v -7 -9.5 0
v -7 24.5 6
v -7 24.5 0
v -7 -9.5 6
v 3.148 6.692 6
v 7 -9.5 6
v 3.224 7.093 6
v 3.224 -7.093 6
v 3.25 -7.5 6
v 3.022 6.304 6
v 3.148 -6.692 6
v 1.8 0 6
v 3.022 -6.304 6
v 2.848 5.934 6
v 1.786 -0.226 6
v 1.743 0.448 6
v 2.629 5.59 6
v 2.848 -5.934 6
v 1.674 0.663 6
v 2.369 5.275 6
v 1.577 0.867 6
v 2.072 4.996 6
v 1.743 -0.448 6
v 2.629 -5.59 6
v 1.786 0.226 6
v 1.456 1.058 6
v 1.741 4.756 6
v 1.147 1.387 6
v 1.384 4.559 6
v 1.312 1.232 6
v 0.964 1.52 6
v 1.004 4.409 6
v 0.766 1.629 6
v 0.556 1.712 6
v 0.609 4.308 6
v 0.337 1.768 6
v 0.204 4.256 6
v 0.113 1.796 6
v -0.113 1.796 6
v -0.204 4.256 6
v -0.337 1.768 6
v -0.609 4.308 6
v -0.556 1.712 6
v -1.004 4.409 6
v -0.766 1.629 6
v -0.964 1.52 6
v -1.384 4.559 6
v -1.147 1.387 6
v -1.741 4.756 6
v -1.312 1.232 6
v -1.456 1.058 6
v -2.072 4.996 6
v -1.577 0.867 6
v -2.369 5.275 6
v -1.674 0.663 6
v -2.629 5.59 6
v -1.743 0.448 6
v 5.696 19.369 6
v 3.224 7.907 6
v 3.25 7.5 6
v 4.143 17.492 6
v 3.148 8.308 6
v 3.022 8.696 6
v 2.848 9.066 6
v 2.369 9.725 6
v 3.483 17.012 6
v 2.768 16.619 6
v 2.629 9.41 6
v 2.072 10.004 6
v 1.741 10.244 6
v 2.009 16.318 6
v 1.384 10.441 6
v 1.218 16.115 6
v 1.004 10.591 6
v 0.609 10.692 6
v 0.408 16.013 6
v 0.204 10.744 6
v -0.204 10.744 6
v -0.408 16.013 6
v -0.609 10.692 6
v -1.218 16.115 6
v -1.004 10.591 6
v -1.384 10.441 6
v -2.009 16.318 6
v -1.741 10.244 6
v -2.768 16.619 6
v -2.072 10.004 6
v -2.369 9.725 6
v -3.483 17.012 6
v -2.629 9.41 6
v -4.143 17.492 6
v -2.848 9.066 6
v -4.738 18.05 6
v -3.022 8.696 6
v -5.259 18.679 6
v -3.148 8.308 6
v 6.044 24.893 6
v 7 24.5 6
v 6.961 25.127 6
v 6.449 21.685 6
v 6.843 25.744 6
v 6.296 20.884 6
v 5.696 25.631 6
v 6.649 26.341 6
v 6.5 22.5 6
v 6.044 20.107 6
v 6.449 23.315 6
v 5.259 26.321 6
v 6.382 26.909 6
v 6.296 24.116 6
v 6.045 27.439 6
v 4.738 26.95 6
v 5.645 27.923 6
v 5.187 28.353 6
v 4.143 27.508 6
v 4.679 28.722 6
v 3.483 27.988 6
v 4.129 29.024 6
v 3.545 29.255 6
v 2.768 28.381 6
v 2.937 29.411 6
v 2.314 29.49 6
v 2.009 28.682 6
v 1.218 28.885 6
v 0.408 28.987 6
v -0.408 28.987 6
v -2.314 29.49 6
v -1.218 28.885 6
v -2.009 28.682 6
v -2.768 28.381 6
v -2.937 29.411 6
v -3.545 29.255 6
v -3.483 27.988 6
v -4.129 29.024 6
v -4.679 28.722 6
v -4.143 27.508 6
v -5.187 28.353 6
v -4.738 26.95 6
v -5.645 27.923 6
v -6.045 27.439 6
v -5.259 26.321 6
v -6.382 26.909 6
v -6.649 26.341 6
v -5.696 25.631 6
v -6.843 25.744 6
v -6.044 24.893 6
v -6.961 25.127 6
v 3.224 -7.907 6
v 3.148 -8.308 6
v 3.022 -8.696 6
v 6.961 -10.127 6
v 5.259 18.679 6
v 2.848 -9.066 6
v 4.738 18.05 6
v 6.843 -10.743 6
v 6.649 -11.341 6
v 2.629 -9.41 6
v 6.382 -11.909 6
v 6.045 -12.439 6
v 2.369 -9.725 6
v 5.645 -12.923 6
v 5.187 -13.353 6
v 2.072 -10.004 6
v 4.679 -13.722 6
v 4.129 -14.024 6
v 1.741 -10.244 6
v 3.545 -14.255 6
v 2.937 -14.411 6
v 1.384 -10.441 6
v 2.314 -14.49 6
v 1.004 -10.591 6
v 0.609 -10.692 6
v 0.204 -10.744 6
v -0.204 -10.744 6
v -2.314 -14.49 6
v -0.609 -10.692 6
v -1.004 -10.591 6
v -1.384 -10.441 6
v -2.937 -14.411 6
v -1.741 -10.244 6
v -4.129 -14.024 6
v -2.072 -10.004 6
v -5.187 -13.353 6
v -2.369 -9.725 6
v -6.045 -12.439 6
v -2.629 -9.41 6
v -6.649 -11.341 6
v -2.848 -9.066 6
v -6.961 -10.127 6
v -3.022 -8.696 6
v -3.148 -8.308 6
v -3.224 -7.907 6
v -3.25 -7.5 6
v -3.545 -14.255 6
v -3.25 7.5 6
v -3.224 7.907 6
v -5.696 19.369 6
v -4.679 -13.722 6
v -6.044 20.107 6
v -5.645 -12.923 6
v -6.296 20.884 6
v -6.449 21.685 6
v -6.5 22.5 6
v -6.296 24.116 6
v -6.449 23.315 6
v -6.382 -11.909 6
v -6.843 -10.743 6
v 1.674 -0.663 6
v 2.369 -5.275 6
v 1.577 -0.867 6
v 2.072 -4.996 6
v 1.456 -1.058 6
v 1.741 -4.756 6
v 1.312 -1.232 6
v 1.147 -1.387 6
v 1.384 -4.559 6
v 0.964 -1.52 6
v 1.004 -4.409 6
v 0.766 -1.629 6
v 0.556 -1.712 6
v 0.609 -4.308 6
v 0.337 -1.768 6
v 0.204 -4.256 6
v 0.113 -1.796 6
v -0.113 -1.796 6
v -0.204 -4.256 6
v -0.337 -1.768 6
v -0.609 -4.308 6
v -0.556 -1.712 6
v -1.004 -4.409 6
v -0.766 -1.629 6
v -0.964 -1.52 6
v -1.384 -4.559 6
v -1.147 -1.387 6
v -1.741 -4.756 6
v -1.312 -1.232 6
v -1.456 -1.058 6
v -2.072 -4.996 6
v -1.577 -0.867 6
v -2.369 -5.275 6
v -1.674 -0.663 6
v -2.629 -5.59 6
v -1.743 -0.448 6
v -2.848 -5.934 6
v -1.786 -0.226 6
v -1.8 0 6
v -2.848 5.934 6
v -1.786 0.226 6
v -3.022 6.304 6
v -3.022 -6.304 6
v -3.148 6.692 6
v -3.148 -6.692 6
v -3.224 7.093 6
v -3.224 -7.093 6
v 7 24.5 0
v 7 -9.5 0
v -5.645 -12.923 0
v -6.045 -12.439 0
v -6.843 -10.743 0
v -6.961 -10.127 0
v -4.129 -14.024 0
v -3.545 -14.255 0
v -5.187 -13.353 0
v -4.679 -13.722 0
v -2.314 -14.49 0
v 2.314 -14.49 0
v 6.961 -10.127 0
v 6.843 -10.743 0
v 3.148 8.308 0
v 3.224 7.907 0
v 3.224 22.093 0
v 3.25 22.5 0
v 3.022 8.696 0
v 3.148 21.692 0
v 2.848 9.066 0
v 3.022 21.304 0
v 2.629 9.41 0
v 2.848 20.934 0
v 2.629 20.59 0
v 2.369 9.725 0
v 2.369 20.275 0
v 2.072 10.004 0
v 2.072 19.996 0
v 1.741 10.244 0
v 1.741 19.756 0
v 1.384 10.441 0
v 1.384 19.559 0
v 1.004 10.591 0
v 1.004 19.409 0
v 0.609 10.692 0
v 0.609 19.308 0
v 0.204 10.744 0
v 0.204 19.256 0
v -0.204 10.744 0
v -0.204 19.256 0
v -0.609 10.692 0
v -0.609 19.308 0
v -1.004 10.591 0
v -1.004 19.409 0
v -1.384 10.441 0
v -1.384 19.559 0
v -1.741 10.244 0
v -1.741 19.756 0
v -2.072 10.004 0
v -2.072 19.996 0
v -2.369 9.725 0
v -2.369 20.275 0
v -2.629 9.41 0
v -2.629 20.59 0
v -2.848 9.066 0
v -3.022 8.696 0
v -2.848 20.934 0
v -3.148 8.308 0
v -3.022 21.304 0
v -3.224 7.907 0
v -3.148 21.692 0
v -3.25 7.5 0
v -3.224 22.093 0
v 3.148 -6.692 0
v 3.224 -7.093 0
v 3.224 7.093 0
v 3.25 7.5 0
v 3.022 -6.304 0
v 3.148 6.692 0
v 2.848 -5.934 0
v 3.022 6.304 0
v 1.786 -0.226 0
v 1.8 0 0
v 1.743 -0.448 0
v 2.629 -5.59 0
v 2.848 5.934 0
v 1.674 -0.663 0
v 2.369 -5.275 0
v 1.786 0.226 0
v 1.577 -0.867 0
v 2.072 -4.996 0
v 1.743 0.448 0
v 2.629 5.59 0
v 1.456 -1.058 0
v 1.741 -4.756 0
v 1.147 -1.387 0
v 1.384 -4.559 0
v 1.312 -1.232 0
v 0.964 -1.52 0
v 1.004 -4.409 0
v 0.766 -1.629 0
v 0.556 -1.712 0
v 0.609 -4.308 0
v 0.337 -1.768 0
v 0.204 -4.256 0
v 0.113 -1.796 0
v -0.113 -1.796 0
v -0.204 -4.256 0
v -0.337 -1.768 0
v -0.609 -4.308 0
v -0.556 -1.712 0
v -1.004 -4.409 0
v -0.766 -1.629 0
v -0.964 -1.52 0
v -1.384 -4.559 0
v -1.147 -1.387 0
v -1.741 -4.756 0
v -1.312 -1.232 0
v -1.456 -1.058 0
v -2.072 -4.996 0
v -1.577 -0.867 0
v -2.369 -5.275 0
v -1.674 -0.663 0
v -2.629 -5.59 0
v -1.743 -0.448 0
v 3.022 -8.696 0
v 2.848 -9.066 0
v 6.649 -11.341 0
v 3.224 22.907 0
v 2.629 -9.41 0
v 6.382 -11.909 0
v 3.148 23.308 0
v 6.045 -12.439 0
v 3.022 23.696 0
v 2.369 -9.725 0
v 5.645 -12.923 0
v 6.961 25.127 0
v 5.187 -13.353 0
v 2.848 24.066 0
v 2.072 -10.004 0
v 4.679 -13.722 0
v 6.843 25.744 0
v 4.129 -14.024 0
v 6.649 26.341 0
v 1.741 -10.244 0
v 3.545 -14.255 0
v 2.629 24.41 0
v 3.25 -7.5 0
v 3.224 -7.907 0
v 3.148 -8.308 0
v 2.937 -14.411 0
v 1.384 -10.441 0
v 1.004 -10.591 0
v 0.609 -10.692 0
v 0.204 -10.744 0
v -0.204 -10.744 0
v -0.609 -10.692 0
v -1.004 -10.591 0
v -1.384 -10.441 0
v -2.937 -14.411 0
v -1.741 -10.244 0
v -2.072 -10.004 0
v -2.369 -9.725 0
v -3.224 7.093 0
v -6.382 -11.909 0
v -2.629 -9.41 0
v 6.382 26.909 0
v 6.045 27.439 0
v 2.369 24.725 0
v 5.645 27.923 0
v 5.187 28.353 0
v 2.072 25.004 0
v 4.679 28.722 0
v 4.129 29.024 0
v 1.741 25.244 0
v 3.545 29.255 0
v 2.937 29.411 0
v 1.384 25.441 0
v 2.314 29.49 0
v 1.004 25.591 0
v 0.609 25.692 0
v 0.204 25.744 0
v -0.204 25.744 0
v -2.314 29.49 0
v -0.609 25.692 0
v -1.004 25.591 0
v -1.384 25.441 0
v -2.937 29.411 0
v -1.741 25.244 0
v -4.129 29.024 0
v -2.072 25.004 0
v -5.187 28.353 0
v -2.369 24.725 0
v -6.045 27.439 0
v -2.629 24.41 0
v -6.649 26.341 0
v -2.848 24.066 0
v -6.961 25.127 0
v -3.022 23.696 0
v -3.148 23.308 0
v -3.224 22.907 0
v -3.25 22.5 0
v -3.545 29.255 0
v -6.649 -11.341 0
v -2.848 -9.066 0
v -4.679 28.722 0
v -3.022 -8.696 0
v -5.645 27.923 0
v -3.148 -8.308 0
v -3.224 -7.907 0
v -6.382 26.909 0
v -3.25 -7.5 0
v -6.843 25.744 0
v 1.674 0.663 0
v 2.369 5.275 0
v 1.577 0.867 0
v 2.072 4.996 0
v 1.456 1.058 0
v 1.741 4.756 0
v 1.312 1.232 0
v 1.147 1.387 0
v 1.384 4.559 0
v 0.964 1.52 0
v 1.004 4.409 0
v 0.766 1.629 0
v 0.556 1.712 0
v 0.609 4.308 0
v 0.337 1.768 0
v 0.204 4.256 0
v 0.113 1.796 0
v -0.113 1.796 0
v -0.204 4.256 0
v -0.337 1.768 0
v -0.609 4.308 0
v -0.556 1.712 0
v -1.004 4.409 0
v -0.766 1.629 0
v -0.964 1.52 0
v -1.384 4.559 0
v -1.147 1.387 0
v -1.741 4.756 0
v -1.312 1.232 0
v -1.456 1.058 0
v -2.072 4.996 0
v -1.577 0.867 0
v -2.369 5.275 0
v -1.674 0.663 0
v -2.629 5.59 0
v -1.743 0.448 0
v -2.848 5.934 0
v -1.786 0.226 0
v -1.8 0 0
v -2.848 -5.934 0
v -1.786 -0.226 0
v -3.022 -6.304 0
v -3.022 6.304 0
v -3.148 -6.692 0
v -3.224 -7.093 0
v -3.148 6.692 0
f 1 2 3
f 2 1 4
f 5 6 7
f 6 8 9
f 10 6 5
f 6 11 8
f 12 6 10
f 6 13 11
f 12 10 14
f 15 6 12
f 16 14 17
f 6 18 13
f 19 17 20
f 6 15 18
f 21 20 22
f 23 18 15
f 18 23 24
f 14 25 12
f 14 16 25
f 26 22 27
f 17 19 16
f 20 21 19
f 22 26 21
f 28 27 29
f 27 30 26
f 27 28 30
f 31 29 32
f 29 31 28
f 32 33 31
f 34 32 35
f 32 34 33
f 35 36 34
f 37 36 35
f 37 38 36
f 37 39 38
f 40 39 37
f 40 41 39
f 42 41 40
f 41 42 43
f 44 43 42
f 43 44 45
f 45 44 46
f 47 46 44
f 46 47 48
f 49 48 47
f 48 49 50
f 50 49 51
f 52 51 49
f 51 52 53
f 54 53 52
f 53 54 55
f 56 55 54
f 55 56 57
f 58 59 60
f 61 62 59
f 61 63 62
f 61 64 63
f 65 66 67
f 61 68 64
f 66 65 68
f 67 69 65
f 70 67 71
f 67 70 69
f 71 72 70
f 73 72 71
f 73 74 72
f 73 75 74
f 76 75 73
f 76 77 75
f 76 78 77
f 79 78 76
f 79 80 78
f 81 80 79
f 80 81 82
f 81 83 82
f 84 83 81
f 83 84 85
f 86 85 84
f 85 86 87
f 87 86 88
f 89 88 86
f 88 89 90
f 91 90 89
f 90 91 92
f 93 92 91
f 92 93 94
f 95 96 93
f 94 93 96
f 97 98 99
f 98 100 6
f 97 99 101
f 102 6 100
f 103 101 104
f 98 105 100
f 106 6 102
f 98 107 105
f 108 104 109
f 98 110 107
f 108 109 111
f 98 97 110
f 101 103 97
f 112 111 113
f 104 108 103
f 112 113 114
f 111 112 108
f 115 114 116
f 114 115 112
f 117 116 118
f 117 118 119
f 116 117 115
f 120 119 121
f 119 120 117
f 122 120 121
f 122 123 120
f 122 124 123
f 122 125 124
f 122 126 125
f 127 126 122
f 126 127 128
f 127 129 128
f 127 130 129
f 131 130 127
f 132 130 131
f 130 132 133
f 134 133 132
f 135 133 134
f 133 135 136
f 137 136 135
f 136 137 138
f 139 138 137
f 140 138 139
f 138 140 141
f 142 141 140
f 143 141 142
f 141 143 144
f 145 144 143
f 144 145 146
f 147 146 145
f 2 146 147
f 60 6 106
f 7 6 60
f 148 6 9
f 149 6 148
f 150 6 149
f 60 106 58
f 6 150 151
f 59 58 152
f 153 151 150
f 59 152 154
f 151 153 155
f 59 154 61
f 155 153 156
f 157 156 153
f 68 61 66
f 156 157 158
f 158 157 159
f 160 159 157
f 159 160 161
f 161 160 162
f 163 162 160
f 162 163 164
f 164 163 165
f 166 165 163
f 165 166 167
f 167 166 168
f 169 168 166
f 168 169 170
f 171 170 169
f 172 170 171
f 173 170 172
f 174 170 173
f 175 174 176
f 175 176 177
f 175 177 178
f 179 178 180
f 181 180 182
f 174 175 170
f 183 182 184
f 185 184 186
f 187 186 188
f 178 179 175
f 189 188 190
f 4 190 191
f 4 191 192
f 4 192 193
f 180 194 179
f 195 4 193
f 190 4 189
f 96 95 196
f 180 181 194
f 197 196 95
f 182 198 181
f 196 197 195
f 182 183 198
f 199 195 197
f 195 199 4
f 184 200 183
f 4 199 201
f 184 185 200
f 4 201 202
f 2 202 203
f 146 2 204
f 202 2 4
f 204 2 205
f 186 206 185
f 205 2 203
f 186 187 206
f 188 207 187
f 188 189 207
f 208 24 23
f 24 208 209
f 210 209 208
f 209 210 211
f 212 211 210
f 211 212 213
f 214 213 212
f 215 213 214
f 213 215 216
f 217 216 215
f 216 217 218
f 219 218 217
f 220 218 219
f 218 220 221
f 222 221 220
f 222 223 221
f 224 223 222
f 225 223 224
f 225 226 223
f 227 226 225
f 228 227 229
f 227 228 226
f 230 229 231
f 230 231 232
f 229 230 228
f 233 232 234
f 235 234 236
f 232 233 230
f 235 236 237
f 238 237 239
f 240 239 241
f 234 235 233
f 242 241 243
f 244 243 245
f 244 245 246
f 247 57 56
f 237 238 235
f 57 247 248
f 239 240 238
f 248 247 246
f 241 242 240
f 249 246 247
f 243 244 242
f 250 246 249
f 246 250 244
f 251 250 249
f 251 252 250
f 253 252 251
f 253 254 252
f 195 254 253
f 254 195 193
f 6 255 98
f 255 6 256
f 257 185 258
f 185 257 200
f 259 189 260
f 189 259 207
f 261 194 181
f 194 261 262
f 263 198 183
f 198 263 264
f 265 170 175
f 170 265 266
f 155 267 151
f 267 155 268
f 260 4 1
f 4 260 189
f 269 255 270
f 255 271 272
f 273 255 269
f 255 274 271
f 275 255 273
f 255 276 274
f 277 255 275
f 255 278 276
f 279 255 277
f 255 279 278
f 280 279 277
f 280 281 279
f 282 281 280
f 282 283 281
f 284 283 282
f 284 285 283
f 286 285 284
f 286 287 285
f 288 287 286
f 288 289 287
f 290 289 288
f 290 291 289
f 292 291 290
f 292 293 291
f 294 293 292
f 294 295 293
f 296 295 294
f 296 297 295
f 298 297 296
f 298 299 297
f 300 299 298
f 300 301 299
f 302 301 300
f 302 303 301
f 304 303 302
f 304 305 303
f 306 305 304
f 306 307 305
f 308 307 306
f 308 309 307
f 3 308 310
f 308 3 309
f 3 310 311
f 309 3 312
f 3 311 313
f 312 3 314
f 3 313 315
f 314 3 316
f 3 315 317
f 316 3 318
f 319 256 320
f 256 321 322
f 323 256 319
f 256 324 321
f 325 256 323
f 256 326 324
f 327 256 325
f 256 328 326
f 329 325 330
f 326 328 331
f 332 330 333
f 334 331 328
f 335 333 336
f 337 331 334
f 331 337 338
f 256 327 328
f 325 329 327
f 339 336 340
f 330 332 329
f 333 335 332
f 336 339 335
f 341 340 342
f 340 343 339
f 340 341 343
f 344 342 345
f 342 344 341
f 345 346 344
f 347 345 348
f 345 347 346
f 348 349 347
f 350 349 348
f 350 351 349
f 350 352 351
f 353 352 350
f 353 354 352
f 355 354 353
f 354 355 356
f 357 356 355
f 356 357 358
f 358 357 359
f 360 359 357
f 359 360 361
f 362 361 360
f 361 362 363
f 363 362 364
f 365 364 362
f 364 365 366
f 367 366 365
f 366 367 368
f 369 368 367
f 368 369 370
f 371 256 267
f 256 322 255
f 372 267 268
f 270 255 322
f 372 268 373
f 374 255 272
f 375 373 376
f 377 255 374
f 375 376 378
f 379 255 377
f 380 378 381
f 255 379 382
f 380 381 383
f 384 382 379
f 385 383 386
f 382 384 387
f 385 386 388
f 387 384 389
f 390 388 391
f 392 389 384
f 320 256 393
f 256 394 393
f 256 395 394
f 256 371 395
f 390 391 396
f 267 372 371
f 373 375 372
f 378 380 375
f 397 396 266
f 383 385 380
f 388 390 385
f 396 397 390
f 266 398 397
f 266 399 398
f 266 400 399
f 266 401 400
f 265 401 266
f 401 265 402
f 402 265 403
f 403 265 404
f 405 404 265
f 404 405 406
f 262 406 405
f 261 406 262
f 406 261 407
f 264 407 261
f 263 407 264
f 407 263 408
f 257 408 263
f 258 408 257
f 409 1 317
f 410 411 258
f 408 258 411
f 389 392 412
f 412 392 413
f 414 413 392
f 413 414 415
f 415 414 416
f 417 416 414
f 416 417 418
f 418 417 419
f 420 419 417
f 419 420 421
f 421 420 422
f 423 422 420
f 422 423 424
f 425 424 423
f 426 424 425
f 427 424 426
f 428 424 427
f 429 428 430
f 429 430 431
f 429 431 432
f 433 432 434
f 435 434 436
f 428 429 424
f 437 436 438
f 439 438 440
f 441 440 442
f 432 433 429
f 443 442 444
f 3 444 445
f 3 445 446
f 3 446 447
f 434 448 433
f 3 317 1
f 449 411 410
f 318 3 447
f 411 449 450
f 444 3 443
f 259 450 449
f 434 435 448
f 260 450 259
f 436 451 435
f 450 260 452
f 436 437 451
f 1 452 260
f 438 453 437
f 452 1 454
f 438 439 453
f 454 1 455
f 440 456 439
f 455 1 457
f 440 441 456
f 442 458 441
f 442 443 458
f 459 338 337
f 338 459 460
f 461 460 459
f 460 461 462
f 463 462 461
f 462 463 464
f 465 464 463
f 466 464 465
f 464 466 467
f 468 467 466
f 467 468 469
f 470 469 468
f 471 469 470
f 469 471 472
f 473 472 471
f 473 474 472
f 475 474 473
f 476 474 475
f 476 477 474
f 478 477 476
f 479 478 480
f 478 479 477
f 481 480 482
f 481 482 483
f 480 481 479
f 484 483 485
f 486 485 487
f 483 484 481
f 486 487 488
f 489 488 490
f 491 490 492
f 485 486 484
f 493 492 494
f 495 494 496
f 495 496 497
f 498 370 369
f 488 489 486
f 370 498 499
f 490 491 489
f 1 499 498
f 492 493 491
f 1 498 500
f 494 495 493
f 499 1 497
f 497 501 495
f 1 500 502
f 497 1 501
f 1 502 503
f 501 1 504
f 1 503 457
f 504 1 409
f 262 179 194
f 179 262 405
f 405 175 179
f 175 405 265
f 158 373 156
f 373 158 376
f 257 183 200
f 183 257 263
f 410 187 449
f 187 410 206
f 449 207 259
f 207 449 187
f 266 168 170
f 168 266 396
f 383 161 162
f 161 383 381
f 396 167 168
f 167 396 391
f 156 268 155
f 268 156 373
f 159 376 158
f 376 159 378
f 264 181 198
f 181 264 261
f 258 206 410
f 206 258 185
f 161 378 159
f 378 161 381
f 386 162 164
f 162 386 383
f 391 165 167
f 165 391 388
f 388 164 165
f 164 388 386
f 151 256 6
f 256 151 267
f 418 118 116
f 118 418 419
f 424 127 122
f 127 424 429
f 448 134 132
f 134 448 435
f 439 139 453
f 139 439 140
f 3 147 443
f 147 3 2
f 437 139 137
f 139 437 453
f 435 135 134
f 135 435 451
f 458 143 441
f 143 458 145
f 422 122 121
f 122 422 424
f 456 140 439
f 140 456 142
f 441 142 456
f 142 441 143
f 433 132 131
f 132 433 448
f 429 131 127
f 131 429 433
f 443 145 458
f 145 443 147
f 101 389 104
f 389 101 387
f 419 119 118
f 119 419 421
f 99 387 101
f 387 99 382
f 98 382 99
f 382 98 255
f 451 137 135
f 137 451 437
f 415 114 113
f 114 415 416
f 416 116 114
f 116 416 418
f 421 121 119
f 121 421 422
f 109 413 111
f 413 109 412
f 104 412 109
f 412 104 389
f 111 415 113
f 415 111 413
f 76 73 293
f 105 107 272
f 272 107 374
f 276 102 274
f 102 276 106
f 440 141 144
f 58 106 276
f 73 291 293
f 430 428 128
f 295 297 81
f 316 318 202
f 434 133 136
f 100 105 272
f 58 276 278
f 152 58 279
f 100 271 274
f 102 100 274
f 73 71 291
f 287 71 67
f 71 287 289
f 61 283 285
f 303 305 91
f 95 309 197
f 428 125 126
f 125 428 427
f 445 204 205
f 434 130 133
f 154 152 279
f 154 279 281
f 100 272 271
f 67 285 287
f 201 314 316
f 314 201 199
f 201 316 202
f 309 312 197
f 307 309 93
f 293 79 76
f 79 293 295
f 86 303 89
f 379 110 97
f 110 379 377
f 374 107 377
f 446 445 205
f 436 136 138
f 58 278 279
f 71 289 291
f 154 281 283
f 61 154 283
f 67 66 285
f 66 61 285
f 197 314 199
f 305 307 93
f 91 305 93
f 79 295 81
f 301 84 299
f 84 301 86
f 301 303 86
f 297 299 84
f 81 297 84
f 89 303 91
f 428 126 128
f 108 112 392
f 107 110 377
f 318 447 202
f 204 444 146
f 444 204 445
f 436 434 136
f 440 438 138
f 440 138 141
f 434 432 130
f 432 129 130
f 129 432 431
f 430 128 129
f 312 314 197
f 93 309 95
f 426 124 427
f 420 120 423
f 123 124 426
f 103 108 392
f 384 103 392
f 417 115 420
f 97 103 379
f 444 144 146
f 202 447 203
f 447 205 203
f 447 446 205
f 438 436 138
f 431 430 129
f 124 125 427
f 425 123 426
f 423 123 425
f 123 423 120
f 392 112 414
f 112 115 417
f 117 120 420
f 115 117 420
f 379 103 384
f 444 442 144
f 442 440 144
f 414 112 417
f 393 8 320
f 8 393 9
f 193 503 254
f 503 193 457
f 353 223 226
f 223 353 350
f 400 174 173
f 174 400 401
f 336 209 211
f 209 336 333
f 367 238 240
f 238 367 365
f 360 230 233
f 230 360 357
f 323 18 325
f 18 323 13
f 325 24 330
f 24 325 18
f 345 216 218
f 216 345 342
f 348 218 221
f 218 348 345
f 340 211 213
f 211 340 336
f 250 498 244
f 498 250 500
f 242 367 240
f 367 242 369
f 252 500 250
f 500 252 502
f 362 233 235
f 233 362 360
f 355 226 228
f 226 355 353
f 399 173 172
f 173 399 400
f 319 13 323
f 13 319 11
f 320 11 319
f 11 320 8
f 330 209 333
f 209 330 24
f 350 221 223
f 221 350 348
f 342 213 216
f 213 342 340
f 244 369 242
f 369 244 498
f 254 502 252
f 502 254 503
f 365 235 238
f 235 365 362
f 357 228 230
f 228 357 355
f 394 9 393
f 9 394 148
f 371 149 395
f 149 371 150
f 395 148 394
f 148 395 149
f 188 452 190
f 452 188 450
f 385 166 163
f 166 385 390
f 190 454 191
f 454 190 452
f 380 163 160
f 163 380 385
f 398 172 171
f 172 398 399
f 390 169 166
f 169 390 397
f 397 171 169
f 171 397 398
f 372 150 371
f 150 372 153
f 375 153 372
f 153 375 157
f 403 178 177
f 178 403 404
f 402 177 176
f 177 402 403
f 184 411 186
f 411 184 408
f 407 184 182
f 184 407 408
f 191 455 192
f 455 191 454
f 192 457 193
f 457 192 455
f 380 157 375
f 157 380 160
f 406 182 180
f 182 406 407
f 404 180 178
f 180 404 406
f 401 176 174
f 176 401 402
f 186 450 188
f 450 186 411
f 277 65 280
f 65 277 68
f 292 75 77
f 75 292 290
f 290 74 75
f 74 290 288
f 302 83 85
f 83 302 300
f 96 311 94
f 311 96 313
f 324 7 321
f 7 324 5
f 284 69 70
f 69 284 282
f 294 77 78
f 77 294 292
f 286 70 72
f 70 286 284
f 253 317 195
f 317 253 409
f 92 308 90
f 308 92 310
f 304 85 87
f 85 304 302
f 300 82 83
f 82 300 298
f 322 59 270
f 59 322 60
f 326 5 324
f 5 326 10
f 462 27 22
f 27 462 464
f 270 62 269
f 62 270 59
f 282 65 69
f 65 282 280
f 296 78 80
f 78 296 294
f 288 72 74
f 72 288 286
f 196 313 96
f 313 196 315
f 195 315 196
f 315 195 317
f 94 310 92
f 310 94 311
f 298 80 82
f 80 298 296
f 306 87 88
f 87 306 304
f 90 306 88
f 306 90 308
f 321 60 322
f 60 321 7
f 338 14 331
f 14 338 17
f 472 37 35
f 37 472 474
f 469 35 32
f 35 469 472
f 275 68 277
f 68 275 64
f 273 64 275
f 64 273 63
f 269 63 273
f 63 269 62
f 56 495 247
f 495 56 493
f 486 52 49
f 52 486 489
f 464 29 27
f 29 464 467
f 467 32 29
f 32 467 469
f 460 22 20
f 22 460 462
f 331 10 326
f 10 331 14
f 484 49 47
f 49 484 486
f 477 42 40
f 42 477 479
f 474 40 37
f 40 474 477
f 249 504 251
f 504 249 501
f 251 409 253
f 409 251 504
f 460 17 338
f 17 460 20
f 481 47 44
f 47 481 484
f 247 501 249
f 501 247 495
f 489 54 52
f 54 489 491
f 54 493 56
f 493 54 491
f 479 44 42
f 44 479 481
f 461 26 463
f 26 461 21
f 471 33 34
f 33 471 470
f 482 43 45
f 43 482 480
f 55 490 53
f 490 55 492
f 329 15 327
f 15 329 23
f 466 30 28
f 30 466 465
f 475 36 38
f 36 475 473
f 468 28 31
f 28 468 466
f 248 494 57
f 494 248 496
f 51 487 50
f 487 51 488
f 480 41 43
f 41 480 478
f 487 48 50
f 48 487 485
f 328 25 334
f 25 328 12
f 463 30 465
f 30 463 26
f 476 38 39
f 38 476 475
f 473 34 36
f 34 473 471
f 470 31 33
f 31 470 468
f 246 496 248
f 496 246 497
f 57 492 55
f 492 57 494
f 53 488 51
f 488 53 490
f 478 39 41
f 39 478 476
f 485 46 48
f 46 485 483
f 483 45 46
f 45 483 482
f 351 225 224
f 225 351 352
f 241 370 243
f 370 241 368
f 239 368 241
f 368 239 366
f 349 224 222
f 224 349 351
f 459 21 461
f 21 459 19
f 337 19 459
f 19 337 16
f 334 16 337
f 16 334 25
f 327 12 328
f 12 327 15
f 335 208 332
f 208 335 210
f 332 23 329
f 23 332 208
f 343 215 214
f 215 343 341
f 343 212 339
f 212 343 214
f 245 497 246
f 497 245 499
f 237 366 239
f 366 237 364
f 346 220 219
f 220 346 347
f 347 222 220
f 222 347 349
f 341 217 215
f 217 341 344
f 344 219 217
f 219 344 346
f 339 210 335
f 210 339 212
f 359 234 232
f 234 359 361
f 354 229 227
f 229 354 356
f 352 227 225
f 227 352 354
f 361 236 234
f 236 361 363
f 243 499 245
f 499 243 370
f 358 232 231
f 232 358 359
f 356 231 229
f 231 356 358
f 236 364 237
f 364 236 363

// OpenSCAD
$fn = 50;


difference() {
	union() {
		hull() {
			translate(v = [-2.0000000000, 9.5000000000, 0]) {
				cylinder(h = 6, r = 5);
			}
			translate(v = [2.0000000000, 9.5000000000, 0]) {
				cylinder(h = 6, r = 5);
			}
			translate(v = [-2.0000000000, -9.5000000000, 0]) {
				cylinder(h = 6, r = 5);
			}
			translate(v = [2.0000000000, -9.5000000000, 0]) {
				cylinder(h = 6, r = 5);
			}
		}
		translate(v = [0.0000000000, 15.0000000000, 0]) {
			hull() {
				translate(v = [-2.0000000000, 9.5000000000, 0]) {
					cylinder(h = 6, r = 5);
				}
				translate(v = [2.0000000000, 9.5000000000, 0]) {
					cylinder(h = 6, r = 5);
				}
				translate(v = [-2.0000000000, -9.5000000000, 0]) {
					cylinder(h = 6, r = 5);
				}
				translate(v = [2.0000000000, -9.5000000000, 0]) {
					cylinder(h = 6, r = 5);
				}
			}
		}
		translate(v = [0.0000000000, 15.0000000000, 0]) {
			hull() {
				translate(v = [-2.0000000000, 9.5000000000, 0]) {
					cylinder(h = 6, r = 5);
				}
				translate(v = [2.0000000000, 9.5000000000, 0]) {
					cylinder(h = 6, r = 5);
				}
				translate(v = [-2.0000000000, -9.5000000000, 0]) {
					cylinder(h = 6, r = 5);
				}
				translate(v = [2.0000000000, -9.5000000000, 0]) {
					cylinder(h = 6, r = 5);
				}
			}
		}
	}
	union() {
		translate(v = [0.0000000000, 22.5000000000, 6]) {
			rotate(a = [0, 0, 0]) {
				difference() {
					union() {
						#translate(v = [0, 0, -6.0000000000]) {
							cylinder(h = 6, r = 2.2500000000);
						}
						#translate(v = [0, 0, -6]) {
							cylinder(h = 6, r1 = 3.2500000000, r2 = 6.5000000000);
						}
						#translate(v = [0, 0, -6.0000000000]) {
							cylinder(h = 6, r = 3.2500000000);
						}
						#translate(v = [0, 0, -6.0000000000]) {
							cylinder(h = 6, r = 2.2500000000);
						}
					}
					union();
				}
			}
		}
		translate(v = [0.0000000000, 22.5000000000, 6]) {
			rotate(a = [0, 0, 0]) {
				difference() {
					union() {
						#translate(v = [0, 0, -6.0000000000]) {
							cylinder(h = 6, r = 2.2500000000);
						}
						#translate(v = [0, 0, -6]) {
							cylinder(h = 6, r1 = 3.2500000000, r2 = 6.5000000000);
						}
						#translate(v = [0, 0, -6.0000000000]) {
							cylinder(h = 6, r = 3.2500000000);
						}
						#translate(v = [0, 0, -6.0000000000]) {
							cylinder(h = 6, r = 2.2500000000);
						}
					}
					union();
				}
			}
		}
		translate(v = [0.0000000000, -7.5000000000, 0]) {
			translate(v = [0, 0, -100]) {
				cylinder(h = 200, r = 3.2500000000);
			}
		}
		translate(v = [0.0000000000, 7.5000000000, 0]) {
			translate(v = [0, 0, -100]) {
				cylinder(h = 200, r = 3.2500000000);
			}
		}
		translate(v = [0.0000000000, -7.5000000000, 0]) {
			translate(v = [0, 0, -100]) {
				cylinder(h = 200, r = 1.8000000000);
			}
		}
		translate(v = [0, 0, -100]) {
			cylinder(h = 200, r = 1.8000000000);
		}
		translate(v = [0.0000000000, 7.5000000000, 0]) {
			translate(v = [0, 0, -100]) {
				cylinder(h = 200, r = 1.8000000000);
			}
		}
	}
}
